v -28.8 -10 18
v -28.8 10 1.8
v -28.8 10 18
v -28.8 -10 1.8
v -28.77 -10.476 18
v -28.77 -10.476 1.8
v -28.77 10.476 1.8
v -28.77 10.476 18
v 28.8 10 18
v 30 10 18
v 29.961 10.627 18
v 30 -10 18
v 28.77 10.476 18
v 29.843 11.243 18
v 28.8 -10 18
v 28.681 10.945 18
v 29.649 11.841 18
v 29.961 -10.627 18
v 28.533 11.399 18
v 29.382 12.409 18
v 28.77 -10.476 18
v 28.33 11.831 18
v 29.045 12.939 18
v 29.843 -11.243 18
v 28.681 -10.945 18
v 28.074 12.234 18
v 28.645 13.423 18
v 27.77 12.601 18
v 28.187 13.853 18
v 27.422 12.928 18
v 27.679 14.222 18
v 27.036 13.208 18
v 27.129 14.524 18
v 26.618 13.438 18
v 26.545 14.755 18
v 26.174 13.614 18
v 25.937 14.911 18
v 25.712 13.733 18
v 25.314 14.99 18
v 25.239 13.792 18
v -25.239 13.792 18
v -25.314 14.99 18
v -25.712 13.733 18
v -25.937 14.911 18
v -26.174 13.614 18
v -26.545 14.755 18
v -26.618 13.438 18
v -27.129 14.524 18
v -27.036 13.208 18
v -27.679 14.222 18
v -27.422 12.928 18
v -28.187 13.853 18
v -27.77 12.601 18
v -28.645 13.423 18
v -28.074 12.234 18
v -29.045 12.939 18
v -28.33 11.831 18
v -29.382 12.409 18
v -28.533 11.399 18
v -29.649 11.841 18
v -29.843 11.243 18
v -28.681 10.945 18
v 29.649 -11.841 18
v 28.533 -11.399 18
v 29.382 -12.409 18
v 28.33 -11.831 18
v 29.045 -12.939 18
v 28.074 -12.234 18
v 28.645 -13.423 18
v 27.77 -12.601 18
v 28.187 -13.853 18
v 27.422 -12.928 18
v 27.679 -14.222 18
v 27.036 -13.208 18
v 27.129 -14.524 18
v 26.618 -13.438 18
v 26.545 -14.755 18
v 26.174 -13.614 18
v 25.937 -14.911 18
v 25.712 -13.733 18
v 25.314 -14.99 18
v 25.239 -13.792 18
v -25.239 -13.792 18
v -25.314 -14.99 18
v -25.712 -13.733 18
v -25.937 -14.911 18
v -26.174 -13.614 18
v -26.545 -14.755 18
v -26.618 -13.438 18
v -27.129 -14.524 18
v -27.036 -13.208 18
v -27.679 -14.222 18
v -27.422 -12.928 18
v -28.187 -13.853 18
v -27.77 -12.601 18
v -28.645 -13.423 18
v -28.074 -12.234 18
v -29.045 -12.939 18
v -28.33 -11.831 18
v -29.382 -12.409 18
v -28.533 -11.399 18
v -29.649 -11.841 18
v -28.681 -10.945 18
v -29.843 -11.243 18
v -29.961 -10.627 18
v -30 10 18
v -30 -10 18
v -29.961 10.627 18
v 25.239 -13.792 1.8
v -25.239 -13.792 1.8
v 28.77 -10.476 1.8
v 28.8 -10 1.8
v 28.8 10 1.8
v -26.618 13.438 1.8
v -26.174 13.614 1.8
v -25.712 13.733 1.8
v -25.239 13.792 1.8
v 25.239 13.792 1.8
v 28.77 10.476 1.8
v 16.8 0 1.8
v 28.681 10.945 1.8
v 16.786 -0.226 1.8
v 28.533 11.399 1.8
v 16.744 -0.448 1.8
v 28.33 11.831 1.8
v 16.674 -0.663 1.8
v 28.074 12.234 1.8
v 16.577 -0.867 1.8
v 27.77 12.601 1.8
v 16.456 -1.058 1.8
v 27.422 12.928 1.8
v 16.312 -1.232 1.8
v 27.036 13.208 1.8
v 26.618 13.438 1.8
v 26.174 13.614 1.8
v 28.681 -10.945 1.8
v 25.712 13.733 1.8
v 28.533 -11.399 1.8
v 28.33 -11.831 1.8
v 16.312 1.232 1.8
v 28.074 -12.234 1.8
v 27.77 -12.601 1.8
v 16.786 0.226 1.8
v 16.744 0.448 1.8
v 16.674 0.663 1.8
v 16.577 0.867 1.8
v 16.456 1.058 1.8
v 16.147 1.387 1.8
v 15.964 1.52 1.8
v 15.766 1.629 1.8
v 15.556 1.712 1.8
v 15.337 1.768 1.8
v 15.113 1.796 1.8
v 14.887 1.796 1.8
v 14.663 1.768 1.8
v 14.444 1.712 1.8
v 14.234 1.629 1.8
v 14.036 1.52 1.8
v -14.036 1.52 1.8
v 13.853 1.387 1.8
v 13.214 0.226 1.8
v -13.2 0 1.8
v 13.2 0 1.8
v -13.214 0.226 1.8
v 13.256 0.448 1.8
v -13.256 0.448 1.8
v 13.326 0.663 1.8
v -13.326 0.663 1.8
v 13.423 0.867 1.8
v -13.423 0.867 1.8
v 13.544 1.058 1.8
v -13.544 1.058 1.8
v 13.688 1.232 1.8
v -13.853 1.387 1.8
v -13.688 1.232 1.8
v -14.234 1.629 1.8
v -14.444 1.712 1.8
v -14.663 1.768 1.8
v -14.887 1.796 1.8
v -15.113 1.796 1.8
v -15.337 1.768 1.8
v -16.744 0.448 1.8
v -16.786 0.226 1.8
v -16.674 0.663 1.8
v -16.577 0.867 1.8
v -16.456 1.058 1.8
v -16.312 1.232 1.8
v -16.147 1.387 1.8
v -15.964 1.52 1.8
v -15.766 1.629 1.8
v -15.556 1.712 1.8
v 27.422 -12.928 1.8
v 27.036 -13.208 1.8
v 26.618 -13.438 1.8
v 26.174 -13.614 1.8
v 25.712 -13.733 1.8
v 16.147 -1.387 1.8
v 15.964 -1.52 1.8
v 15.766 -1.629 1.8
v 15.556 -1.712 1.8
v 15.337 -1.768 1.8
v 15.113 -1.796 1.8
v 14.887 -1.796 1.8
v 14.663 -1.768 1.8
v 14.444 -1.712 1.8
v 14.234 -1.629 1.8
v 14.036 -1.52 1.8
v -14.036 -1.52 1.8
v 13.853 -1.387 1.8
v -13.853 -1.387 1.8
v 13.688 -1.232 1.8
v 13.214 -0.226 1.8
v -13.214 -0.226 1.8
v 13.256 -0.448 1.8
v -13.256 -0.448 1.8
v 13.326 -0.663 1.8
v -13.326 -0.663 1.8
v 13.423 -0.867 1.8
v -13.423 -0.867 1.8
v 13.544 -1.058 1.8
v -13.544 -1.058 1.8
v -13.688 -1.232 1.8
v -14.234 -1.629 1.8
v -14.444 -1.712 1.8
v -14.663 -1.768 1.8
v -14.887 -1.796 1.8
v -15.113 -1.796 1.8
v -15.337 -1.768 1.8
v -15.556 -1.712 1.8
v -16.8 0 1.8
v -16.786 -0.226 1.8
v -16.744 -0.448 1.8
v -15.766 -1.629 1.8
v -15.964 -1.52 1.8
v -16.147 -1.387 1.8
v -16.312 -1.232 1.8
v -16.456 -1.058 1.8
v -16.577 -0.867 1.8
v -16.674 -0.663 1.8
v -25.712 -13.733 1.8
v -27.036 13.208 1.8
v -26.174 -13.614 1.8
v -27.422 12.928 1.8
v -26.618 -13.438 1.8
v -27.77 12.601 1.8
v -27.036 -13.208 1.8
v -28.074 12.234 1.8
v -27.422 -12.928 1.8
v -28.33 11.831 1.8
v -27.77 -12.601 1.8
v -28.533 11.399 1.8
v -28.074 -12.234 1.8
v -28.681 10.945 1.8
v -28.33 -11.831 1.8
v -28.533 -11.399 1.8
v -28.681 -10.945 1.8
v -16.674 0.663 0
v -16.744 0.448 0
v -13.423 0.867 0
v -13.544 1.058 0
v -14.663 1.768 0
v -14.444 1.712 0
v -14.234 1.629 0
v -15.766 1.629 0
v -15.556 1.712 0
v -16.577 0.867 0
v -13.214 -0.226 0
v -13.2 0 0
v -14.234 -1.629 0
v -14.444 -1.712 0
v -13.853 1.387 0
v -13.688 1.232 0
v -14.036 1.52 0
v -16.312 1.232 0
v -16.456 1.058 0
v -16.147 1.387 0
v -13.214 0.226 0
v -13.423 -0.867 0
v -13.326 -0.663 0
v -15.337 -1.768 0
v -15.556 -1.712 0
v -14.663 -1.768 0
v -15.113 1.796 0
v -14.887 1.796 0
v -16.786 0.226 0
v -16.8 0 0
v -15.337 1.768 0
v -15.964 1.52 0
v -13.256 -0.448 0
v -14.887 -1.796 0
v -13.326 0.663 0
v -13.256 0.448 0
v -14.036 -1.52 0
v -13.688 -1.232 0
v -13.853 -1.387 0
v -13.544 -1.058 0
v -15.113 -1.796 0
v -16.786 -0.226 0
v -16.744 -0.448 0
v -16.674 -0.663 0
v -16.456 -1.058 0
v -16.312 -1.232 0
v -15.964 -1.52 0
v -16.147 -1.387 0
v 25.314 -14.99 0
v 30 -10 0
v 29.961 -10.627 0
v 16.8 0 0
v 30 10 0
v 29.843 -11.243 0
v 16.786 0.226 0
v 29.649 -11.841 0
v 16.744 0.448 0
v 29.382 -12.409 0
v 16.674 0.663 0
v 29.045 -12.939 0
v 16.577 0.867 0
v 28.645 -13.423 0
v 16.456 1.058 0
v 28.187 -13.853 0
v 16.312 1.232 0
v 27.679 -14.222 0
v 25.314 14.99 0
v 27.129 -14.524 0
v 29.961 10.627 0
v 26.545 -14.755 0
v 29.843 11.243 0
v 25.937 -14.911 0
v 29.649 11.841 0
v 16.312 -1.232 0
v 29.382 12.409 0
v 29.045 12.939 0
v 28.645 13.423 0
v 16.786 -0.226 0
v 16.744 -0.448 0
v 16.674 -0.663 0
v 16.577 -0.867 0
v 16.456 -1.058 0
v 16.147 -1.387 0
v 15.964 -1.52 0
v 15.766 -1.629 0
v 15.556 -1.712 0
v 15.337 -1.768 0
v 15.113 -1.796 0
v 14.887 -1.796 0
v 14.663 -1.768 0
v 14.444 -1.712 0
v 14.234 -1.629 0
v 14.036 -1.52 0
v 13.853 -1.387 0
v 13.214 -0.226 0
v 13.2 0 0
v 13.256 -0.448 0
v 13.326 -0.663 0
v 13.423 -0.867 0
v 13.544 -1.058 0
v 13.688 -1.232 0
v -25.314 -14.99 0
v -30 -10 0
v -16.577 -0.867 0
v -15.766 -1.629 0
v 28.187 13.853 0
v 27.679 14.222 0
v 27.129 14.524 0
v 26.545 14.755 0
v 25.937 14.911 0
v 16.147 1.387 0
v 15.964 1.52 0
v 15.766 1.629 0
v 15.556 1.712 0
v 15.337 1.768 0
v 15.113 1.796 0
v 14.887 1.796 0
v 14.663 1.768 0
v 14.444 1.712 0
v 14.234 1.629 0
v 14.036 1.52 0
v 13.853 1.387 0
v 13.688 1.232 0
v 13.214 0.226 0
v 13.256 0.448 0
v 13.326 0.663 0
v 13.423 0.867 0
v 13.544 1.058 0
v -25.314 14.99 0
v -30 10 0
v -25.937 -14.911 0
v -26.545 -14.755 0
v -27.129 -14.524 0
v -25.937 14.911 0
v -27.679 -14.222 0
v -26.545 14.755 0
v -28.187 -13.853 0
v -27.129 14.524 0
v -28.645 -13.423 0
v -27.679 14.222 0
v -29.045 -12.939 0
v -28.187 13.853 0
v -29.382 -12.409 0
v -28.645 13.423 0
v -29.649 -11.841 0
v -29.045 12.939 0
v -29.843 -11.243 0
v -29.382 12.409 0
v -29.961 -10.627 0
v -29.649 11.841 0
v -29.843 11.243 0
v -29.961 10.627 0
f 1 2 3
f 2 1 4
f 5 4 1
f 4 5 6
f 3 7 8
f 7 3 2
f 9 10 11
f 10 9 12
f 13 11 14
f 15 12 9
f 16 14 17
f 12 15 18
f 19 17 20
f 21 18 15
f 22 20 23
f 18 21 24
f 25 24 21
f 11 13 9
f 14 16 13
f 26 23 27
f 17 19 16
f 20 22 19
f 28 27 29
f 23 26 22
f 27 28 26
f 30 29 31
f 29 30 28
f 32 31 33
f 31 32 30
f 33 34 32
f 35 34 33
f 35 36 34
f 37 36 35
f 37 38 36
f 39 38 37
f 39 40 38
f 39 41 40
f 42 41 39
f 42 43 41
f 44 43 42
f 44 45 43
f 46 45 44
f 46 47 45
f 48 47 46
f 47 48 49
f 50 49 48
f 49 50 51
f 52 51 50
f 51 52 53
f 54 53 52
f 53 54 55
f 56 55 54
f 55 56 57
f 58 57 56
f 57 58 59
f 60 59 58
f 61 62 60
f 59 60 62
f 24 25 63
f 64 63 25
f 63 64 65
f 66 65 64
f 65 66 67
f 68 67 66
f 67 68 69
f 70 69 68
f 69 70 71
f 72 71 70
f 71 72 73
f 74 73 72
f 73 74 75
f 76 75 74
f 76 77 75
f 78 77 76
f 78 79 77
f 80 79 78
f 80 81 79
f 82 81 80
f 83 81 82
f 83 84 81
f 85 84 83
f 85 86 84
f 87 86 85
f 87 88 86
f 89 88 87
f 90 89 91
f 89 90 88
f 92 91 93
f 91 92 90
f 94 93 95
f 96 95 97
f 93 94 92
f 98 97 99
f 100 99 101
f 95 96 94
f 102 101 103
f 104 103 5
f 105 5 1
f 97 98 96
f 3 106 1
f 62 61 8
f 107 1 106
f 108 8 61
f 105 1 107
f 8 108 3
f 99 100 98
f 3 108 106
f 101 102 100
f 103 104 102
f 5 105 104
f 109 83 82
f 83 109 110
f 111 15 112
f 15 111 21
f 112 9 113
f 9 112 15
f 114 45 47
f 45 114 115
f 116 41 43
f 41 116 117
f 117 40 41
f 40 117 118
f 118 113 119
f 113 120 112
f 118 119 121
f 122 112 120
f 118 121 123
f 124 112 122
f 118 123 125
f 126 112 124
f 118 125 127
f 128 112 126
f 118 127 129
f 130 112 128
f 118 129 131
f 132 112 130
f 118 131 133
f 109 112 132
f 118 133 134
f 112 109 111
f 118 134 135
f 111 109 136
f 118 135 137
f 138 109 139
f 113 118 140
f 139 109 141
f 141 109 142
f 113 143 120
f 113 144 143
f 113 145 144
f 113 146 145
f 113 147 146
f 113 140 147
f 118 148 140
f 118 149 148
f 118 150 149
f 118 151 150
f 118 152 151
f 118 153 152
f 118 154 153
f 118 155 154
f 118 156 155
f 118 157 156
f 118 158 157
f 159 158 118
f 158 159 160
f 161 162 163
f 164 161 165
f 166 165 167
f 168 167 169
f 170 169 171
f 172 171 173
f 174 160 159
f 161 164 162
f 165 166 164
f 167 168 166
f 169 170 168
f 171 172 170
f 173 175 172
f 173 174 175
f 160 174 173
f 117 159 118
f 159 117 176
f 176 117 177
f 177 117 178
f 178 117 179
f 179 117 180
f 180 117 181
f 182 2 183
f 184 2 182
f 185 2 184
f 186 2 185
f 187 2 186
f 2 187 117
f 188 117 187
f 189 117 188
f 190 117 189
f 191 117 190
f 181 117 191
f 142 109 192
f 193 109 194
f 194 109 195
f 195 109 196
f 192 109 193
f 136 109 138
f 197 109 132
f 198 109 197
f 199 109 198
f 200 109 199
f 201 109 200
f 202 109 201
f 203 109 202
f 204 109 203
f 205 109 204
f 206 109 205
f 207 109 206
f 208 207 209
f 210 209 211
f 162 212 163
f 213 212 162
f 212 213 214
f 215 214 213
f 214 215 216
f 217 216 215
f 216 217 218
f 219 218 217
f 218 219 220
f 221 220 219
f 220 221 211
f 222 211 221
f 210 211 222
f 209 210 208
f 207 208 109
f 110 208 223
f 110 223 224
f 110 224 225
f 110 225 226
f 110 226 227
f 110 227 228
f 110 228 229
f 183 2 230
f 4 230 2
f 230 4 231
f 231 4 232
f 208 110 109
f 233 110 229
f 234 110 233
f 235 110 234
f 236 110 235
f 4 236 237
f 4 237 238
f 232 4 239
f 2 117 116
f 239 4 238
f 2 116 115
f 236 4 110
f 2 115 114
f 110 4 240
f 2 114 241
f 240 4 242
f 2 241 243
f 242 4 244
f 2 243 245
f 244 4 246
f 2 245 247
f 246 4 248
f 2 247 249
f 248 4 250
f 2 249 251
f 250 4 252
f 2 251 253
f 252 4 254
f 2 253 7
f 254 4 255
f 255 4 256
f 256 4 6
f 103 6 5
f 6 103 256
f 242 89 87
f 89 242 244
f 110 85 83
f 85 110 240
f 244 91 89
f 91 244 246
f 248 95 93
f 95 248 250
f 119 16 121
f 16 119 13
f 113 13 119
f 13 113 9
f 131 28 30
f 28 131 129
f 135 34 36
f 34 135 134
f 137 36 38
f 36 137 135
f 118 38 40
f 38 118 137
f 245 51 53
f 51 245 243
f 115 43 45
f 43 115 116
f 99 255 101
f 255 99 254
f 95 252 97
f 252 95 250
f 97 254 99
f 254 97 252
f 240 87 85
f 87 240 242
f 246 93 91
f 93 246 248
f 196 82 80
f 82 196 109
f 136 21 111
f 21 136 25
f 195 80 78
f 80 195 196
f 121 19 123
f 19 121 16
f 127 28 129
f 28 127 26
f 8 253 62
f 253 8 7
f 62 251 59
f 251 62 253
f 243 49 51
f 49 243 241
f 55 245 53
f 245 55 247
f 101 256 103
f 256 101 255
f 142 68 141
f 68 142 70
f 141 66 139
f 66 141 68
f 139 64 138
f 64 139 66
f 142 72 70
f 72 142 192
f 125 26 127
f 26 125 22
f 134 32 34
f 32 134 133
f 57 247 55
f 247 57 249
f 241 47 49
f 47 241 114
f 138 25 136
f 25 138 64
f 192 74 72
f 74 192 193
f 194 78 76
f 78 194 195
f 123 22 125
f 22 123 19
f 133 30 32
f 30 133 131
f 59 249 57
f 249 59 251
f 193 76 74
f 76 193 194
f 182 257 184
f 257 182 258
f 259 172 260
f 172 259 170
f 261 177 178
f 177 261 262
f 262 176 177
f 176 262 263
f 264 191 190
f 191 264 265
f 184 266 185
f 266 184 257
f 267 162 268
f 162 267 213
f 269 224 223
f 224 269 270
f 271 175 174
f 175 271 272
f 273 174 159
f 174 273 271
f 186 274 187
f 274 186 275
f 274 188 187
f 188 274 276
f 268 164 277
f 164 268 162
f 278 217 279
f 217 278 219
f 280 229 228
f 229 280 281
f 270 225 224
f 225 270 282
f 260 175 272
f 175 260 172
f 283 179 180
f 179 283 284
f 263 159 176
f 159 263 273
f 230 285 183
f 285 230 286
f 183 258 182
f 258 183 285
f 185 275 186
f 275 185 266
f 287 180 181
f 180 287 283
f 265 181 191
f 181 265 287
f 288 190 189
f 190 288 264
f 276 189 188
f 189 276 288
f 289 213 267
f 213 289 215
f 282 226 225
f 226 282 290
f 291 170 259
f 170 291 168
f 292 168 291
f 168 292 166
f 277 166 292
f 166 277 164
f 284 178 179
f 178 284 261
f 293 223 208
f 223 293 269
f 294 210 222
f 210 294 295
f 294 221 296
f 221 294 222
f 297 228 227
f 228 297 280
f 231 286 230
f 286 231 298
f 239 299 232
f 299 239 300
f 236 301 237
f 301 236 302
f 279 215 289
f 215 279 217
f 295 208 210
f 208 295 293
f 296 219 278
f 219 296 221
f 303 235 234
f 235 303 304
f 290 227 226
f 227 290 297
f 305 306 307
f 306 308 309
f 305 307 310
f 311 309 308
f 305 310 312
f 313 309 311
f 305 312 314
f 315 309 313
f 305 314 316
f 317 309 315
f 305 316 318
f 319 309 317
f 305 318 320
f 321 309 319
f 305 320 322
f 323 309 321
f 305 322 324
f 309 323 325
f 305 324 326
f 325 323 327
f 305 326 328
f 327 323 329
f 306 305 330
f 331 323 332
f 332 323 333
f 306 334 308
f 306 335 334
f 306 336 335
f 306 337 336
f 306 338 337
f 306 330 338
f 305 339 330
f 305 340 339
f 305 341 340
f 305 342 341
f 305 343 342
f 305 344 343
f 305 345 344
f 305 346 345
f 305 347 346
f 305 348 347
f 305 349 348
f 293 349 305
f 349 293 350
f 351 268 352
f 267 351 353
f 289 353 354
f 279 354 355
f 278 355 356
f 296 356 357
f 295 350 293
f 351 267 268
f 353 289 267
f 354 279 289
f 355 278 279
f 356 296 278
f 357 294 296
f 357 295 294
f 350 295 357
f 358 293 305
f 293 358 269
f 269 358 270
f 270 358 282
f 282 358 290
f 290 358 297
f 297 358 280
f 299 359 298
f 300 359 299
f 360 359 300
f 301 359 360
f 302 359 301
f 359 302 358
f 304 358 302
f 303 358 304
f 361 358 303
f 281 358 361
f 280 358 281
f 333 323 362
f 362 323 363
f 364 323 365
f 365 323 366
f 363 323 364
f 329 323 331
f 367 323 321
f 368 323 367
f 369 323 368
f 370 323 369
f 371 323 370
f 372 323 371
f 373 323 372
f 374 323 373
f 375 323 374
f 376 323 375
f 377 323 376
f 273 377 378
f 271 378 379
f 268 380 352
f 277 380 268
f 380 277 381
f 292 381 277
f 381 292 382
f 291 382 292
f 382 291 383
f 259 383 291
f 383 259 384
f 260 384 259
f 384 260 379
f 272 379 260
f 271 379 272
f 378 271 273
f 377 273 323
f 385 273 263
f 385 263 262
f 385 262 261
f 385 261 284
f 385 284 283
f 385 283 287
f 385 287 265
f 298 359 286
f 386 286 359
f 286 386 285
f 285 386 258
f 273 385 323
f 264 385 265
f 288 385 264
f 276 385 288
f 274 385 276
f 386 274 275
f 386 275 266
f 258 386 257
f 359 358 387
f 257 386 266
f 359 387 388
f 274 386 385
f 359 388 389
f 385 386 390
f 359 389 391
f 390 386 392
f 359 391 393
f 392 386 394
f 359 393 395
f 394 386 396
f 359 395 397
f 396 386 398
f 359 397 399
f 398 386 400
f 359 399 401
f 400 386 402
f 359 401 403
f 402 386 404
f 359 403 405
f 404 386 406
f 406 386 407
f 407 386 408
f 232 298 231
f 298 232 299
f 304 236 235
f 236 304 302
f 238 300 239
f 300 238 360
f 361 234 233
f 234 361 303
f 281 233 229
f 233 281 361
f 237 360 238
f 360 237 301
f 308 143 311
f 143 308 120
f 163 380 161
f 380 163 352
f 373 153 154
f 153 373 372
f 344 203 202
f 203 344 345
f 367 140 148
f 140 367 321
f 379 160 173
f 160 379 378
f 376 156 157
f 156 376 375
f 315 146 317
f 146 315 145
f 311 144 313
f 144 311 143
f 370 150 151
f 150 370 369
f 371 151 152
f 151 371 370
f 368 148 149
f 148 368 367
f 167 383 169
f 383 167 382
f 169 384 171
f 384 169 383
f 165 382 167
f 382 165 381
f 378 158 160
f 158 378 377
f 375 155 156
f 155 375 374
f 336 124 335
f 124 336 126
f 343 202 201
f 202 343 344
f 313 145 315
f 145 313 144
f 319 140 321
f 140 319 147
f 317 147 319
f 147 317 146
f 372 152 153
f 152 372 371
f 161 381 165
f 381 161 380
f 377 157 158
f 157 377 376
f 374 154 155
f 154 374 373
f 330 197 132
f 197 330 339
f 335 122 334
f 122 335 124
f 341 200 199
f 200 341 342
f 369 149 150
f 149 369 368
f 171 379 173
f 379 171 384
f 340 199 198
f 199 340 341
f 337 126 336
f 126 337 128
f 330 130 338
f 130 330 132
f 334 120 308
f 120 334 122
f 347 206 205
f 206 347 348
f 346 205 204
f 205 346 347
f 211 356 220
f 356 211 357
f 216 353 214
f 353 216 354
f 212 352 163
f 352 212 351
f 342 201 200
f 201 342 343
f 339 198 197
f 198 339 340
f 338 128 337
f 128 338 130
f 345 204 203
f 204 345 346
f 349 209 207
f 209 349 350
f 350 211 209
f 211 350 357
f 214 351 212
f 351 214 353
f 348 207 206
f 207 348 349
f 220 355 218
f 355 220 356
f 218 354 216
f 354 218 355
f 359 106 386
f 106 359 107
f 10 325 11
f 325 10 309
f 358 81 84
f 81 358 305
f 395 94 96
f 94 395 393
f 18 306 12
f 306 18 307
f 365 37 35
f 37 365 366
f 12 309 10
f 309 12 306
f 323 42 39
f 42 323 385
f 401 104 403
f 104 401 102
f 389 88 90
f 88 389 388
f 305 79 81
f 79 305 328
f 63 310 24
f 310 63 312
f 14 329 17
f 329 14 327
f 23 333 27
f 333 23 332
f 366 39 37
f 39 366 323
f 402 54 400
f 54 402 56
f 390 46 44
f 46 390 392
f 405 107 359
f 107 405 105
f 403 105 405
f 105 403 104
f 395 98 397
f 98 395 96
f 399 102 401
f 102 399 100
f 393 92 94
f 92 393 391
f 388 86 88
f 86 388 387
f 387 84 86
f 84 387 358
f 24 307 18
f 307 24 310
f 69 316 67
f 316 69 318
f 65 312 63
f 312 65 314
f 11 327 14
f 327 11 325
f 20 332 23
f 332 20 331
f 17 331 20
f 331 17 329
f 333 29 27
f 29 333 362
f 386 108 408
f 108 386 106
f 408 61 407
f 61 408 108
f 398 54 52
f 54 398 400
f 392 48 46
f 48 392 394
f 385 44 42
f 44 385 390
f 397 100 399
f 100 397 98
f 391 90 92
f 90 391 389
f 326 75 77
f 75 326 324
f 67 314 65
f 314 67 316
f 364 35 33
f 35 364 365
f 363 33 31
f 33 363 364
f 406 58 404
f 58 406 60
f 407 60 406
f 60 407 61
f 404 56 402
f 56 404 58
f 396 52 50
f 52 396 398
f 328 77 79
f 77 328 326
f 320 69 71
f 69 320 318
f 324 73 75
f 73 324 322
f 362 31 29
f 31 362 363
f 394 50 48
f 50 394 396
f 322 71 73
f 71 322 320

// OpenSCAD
$fn = 50;


difference() {
	union() {
		hull() {
			translate(v = [-25.0000000000, 10.0000000000, 0]) {
				cylinder(h = 18, r = 5);
			}
			translate(v = [25.0000000000, 10.0000000000, 0]) {
				cylinder(h = 18, r = 5);
			}
			translate(v = [-25.0000000000, -10.0000000000, 0]) {
				cylinder(h = 18, r = 5);
			}
			translate(v = [25.0000000000, -10.0000000000, 0]) {
				cylinder(h = 18, r = 5);
			}
		}
	}
	union() {
		translate(v = [0, 0, 1.8000000000]) {
			hull() {
				translate(v = [-25.0000000000, 10.0000000000, 0]) {
					cylinder(h = 16.2000000000, r = 3.8000000000);
				}
				translate(v = [25.0000000000, 10.0000000000, 0]) {
					cylinder(h = 16.2000000000, r = 3.8000000000);
				}
				translate(v = [-25.0000000000, -10.0000000000, 0]) {
					cylinder(h = 16.2000000000, r = 3.8000000000);
				}
				translate(v = [25.0000000000, -10.0000000000, 0]) {
					cylinder(h = 16.2000000000, r = 3.8000000000);
				}
			}
		}
		#translate(v = [-15.0000000000, 0.0000000000, 0]) {
			cylinder(h = 1.8000000000, r = 1.8000000000);
		}
		#translate(v = [15.0000000000, 0.0000000000, 0]) {
			cylinder(h = 1.8000000000, r = 1.8000000000);
		}
	}
}
